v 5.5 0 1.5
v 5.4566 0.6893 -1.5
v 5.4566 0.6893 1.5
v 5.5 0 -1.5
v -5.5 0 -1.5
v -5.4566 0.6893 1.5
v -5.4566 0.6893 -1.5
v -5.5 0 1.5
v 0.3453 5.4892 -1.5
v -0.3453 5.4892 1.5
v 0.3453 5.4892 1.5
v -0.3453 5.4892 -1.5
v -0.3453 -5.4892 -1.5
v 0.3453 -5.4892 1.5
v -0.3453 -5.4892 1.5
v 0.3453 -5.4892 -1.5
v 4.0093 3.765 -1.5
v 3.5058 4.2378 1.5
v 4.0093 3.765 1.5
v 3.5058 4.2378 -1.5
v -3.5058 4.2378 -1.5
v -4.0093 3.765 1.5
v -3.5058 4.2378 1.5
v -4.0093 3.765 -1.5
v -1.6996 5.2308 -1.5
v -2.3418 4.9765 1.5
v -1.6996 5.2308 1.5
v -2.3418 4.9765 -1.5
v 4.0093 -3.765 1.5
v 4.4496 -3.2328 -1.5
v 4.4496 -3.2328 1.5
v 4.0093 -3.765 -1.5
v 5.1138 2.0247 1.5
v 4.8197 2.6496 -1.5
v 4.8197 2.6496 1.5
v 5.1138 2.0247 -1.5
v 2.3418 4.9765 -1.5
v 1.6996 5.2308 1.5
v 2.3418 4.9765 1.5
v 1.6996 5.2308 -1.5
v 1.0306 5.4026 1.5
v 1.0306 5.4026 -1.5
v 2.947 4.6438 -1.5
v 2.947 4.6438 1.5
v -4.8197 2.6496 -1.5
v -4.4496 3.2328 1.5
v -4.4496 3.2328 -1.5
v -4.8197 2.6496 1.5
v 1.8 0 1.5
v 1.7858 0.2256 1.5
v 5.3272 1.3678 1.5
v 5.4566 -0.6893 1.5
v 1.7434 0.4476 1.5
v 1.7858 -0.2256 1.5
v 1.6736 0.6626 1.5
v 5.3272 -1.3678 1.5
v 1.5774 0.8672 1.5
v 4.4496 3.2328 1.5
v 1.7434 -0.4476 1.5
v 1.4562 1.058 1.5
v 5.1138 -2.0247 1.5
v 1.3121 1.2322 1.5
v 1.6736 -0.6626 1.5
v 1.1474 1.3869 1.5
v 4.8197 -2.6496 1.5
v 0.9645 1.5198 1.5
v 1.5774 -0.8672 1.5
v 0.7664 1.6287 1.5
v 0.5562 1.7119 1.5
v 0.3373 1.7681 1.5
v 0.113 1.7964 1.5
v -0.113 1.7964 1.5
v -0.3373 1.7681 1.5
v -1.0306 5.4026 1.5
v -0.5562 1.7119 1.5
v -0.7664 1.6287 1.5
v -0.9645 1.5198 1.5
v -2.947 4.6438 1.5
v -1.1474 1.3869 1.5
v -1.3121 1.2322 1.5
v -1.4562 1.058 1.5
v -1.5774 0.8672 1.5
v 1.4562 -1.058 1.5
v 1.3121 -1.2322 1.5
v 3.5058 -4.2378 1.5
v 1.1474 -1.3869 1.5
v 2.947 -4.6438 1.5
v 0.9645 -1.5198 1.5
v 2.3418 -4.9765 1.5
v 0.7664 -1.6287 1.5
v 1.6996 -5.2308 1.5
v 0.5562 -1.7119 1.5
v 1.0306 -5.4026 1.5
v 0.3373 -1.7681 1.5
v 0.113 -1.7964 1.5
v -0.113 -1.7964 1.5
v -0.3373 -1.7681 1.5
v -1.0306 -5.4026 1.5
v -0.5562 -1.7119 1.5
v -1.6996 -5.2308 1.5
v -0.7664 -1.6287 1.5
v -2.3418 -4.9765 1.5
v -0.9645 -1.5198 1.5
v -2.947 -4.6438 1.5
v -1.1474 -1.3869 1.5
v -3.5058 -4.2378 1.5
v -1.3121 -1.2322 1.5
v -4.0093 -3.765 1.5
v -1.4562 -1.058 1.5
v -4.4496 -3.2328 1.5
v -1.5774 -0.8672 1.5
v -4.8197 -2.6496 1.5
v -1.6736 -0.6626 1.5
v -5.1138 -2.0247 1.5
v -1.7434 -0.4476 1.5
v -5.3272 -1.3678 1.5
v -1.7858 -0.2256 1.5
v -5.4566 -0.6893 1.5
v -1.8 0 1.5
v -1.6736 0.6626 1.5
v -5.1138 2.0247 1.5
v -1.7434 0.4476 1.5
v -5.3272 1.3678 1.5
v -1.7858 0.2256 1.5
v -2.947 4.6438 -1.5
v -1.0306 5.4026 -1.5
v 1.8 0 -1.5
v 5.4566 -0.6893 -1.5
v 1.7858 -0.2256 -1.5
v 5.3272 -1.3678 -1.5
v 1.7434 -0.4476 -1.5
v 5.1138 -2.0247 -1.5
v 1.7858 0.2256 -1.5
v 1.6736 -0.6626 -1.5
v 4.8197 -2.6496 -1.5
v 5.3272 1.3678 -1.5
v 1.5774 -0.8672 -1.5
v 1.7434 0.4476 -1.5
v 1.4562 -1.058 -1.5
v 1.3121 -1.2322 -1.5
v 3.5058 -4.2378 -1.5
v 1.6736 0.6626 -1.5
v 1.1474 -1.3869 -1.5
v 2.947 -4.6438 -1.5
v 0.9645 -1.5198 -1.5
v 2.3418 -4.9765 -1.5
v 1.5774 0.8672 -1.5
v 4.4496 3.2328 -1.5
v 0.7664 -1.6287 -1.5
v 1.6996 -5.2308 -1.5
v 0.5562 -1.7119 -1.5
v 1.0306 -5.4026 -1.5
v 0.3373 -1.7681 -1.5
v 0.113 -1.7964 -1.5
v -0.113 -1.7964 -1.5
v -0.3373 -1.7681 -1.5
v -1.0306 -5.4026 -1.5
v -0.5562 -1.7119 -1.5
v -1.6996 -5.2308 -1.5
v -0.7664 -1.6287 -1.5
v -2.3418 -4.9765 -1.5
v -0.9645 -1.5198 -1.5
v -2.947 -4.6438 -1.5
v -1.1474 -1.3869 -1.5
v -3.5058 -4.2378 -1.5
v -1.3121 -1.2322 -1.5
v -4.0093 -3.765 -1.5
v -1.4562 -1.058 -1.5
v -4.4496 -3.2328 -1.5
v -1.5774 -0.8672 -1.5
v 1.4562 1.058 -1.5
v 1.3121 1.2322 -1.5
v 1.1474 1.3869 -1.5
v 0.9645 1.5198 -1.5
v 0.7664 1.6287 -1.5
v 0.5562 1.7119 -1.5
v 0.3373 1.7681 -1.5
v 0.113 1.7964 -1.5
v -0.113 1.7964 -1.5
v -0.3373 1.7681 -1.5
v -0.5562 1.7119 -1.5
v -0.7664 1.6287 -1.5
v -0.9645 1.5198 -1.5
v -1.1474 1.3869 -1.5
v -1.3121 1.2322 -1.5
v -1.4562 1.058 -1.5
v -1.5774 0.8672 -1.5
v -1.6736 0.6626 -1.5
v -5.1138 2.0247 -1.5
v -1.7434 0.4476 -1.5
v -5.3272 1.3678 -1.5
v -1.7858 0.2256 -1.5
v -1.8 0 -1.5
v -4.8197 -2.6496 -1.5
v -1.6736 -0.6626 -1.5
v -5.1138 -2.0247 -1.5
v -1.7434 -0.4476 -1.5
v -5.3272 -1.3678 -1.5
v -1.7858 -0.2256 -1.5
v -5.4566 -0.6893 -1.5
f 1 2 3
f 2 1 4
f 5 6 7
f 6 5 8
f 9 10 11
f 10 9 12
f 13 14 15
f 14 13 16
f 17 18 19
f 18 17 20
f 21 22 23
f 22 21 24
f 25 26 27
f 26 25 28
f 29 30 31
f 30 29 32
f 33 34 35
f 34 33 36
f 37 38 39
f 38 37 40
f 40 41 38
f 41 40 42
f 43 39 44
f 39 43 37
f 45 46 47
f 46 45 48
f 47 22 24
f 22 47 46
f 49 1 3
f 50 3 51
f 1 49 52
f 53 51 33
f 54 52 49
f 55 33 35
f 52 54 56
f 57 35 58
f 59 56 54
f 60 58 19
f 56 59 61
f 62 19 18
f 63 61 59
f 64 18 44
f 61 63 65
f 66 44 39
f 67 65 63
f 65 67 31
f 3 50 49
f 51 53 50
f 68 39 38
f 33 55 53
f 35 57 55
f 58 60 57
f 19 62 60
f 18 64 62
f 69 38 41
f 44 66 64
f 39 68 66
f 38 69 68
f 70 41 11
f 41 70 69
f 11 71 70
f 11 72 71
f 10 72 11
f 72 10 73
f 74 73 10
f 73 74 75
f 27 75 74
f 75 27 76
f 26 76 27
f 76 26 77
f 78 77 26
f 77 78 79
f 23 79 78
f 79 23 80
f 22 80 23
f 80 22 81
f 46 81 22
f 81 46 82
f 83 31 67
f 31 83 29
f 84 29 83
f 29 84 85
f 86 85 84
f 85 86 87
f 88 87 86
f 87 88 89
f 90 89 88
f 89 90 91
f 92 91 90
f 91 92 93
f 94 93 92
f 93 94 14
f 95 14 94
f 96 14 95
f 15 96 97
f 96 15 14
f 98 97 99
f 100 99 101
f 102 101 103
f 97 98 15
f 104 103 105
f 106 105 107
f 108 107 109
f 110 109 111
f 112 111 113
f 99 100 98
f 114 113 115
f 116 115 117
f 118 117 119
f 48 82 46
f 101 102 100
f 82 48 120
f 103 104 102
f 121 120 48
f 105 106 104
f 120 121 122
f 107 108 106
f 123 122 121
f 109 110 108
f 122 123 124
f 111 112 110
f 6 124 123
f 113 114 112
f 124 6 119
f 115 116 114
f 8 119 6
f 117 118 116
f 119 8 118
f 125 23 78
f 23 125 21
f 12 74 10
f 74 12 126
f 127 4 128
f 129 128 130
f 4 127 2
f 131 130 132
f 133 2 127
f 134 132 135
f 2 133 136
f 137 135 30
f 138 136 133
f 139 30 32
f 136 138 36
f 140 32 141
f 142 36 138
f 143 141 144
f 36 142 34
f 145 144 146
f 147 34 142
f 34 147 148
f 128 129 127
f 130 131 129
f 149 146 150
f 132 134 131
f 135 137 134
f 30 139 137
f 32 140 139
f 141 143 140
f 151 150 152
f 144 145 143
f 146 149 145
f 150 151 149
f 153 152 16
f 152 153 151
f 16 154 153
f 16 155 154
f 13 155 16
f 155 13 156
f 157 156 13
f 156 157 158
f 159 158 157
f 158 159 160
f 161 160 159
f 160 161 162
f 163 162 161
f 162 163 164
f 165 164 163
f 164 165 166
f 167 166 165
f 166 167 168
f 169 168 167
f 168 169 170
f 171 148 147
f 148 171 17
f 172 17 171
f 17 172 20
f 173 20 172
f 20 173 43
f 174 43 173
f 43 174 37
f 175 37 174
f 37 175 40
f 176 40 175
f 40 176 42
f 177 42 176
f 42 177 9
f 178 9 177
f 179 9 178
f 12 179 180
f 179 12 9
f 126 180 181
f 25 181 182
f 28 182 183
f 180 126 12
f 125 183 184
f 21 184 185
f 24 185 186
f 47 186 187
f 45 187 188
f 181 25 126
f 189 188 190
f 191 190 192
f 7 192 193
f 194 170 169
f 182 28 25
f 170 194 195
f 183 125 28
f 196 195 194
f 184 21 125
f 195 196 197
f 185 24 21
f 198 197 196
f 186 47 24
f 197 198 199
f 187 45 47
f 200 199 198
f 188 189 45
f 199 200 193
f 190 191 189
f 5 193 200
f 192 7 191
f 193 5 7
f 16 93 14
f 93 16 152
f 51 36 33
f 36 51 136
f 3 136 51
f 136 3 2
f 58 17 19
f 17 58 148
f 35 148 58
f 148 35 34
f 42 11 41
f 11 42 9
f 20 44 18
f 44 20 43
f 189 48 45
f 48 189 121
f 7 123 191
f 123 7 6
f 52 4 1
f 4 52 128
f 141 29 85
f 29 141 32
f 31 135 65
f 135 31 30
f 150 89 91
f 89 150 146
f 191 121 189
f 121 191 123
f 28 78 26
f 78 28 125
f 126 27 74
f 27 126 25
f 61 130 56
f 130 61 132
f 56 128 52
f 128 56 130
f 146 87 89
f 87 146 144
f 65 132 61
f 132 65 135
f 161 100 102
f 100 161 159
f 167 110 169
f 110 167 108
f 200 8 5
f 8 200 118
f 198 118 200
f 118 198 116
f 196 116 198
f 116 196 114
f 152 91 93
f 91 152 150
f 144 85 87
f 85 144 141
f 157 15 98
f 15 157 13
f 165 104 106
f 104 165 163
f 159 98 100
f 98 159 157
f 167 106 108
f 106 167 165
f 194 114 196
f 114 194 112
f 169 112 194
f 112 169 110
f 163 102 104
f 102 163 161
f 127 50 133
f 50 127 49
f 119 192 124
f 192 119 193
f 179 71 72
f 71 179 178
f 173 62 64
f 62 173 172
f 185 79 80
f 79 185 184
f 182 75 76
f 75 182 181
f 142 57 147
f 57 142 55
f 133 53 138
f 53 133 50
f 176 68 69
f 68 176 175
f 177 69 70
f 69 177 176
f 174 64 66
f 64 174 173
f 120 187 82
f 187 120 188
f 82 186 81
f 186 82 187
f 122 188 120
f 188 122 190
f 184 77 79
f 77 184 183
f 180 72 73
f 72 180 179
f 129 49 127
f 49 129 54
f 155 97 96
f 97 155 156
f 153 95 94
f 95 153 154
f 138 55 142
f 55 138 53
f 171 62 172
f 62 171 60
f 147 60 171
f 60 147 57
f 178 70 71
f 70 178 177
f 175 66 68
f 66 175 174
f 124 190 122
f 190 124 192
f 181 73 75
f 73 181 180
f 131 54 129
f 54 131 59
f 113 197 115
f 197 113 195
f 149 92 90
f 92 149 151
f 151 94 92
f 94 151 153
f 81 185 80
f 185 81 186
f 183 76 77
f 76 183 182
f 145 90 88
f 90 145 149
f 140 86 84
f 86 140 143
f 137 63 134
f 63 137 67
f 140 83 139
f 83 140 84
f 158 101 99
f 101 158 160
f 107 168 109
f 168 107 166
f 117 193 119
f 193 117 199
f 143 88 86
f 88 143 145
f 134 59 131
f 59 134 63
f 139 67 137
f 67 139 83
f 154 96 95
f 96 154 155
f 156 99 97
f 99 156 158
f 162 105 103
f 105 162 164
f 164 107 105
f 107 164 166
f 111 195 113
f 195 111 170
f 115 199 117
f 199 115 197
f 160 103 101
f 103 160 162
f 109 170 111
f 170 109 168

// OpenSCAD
$fn = 50;


difference() {
	union() {
		translate(v = [0, 0, -1.5000000000]) {
			cylinder(h = 3, r = 5.5000000000);
		}
	}
	union() {
		translate(v = [0, 0, -100.0000000000]) {
			cylinder(h = 200, r = 1.8000000000);
		}
	}
}
